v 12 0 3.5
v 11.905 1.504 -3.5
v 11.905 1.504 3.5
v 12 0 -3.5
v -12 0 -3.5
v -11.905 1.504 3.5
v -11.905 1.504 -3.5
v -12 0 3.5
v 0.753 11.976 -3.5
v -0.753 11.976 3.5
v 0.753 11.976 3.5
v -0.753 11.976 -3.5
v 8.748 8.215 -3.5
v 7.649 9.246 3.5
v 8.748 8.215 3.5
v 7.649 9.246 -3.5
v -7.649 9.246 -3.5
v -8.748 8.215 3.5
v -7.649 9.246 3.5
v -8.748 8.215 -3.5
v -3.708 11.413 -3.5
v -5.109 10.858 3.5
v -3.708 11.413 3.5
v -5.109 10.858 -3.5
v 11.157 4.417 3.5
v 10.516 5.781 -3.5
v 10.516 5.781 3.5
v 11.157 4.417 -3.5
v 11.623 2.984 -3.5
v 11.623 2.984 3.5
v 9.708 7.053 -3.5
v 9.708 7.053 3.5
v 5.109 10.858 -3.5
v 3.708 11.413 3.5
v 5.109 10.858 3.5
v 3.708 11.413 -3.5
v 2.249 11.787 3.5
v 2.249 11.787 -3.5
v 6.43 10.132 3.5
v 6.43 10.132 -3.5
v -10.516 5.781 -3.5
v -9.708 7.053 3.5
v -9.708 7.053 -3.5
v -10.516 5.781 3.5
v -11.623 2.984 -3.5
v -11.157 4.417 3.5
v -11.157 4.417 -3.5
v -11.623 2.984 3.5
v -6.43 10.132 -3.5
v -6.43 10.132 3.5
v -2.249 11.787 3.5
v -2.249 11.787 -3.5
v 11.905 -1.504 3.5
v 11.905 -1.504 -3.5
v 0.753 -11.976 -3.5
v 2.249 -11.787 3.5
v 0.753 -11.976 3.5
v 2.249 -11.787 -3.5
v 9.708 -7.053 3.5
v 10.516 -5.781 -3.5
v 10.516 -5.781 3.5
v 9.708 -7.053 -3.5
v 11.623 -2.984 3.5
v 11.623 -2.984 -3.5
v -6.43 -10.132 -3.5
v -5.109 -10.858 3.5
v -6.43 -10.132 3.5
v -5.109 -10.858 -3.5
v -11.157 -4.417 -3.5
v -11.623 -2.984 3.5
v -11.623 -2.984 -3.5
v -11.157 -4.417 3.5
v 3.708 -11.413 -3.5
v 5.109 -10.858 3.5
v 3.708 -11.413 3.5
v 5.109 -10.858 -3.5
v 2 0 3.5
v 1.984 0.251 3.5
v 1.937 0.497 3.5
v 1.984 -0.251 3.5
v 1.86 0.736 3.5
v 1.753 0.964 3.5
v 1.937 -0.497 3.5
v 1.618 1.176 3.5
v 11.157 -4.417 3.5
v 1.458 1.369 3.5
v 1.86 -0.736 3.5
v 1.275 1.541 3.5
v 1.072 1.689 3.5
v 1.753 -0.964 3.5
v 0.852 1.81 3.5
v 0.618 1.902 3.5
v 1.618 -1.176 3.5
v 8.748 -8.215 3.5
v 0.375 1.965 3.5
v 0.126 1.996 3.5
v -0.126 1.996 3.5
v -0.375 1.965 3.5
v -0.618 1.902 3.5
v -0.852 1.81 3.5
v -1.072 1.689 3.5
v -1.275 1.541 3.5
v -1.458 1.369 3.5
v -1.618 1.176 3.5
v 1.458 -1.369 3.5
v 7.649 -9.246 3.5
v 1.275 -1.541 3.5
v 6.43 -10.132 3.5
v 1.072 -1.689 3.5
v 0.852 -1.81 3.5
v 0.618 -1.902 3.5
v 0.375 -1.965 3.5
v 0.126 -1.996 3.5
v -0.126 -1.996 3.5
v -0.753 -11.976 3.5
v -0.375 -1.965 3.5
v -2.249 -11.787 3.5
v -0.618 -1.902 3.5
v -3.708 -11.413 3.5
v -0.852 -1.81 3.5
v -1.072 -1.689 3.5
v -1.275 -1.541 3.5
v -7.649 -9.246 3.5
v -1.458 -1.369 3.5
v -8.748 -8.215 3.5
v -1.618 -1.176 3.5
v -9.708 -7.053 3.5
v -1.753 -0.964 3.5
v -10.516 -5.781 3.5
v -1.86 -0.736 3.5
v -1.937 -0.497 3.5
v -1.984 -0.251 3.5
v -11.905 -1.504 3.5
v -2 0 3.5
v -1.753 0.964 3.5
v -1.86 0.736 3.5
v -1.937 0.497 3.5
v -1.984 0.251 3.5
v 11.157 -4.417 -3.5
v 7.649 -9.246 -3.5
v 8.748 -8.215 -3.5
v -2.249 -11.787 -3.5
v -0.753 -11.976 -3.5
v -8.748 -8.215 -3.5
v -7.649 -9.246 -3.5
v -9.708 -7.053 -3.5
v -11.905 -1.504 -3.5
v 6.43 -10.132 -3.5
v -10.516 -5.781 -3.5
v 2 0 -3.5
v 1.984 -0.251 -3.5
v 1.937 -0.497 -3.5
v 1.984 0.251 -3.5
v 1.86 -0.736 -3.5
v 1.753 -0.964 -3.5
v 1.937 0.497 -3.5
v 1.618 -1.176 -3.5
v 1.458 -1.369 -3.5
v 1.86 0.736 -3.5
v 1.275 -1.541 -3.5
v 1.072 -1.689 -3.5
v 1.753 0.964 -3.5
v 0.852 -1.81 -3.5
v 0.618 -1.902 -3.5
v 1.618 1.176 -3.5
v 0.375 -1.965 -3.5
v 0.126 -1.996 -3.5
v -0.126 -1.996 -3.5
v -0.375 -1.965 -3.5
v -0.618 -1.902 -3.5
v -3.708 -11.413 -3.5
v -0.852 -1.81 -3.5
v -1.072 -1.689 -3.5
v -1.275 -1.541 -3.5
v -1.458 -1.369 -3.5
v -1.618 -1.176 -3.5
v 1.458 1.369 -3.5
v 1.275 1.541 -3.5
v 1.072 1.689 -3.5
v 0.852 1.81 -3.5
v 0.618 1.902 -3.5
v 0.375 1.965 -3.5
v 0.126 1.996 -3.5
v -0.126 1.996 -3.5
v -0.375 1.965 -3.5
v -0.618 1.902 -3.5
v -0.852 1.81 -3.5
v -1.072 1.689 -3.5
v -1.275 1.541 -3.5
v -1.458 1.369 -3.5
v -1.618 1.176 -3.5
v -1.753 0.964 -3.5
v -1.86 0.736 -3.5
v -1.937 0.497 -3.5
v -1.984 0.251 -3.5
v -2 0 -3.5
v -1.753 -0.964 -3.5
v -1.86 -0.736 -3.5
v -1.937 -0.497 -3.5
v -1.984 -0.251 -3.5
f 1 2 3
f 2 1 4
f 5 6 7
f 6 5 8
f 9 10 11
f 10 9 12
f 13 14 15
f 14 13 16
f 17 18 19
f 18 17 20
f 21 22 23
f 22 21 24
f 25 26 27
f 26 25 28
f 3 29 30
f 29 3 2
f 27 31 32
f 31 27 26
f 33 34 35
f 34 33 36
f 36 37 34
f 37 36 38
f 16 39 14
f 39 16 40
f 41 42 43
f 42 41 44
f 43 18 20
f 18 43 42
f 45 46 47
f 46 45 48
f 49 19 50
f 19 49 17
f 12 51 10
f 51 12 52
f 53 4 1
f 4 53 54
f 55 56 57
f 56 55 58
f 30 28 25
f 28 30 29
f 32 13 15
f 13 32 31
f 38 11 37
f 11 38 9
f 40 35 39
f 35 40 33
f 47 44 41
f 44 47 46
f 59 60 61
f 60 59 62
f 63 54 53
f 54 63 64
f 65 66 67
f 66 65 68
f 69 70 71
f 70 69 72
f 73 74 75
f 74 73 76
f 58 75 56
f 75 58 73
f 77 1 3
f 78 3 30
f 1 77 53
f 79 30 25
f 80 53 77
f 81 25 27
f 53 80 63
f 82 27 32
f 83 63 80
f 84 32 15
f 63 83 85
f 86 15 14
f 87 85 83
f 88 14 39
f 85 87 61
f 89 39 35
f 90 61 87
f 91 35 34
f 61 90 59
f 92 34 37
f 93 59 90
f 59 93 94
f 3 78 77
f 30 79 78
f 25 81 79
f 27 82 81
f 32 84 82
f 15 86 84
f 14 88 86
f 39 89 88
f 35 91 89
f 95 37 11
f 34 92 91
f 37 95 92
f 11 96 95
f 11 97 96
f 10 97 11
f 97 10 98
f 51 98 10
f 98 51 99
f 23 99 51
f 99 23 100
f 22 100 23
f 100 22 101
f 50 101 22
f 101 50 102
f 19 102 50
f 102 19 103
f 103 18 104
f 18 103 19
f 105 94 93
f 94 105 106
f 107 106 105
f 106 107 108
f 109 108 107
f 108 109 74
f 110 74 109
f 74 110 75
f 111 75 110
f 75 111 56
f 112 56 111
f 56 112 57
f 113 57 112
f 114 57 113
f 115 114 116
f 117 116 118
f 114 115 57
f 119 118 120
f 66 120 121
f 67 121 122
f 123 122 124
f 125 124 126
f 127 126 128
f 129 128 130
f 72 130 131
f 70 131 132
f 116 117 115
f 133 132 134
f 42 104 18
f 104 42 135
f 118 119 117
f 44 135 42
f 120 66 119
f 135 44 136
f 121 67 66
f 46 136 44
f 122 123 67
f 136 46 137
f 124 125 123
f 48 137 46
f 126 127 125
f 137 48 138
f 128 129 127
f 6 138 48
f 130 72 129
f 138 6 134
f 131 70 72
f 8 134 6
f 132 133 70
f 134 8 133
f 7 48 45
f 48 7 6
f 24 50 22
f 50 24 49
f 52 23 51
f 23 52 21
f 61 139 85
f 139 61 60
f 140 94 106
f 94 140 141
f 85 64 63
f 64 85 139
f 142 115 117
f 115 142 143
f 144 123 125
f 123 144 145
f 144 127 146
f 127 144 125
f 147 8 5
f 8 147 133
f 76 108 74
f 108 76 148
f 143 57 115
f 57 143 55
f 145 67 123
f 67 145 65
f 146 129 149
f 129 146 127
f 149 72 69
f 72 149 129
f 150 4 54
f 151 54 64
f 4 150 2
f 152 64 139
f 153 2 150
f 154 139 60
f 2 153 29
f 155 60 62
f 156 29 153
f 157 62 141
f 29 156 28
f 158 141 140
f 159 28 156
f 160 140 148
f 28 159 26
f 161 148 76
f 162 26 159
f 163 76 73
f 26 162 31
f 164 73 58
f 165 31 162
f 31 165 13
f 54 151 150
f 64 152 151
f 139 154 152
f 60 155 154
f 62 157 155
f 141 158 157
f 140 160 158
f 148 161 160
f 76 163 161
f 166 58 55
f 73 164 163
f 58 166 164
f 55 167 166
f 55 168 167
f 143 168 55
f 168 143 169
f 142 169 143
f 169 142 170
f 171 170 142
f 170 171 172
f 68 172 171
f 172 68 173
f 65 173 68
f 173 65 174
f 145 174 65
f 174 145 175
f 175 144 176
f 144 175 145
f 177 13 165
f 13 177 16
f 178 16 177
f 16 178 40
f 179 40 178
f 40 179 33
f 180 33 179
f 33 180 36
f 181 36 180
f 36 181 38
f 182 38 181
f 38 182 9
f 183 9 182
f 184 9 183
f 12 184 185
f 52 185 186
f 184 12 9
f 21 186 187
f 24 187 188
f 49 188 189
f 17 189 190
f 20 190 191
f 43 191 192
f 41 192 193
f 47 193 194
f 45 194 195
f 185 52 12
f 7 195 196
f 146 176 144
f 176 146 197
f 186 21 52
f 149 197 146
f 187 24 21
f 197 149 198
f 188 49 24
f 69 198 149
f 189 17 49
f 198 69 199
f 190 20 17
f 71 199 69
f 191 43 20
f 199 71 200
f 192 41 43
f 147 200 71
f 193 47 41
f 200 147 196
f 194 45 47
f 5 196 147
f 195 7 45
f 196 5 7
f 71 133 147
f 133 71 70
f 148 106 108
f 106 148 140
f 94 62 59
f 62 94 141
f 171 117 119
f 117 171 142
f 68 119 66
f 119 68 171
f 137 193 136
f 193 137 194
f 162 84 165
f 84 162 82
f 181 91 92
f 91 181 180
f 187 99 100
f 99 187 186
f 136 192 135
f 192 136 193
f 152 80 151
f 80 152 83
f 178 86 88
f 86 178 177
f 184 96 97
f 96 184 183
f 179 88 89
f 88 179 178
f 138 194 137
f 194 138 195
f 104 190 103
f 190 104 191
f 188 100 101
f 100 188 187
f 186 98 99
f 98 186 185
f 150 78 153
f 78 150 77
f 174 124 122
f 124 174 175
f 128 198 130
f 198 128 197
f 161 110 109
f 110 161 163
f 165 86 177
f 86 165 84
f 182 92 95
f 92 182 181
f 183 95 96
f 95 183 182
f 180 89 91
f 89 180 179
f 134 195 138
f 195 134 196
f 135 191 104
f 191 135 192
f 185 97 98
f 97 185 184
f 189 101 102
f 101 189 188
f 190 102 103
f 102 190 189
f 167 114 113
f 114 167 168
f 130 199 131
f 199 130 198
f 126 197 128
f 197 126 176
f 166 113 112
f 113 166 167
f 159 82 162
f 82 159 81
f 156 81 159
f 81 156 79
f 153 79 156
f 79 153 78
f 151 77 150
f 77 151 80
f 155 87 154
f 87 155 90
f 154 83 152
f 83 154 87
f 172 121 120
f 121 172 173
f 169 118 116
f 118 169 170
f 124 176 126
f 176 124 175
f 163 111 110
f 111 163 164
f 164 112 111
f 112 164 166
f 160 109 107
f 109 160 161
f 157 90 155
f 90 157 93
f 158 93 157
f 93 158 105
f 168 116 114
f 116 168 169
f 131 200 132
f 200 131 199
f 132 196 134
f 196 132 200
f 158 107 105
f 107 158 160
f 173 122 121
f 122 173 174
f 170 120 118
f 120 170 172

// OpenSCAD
$fn = 50;


difference() {
	union() {
		translate(v = [0, 0, -3.5000000000]) {
			cylinder(h = 7, r = 12.0000000000);
		}
	}
	union() {
		translate(v = [0, 0, -100.0000000000]) {
			cylinder(h = 200, r = 2.0000000000);
		}
	}
}
